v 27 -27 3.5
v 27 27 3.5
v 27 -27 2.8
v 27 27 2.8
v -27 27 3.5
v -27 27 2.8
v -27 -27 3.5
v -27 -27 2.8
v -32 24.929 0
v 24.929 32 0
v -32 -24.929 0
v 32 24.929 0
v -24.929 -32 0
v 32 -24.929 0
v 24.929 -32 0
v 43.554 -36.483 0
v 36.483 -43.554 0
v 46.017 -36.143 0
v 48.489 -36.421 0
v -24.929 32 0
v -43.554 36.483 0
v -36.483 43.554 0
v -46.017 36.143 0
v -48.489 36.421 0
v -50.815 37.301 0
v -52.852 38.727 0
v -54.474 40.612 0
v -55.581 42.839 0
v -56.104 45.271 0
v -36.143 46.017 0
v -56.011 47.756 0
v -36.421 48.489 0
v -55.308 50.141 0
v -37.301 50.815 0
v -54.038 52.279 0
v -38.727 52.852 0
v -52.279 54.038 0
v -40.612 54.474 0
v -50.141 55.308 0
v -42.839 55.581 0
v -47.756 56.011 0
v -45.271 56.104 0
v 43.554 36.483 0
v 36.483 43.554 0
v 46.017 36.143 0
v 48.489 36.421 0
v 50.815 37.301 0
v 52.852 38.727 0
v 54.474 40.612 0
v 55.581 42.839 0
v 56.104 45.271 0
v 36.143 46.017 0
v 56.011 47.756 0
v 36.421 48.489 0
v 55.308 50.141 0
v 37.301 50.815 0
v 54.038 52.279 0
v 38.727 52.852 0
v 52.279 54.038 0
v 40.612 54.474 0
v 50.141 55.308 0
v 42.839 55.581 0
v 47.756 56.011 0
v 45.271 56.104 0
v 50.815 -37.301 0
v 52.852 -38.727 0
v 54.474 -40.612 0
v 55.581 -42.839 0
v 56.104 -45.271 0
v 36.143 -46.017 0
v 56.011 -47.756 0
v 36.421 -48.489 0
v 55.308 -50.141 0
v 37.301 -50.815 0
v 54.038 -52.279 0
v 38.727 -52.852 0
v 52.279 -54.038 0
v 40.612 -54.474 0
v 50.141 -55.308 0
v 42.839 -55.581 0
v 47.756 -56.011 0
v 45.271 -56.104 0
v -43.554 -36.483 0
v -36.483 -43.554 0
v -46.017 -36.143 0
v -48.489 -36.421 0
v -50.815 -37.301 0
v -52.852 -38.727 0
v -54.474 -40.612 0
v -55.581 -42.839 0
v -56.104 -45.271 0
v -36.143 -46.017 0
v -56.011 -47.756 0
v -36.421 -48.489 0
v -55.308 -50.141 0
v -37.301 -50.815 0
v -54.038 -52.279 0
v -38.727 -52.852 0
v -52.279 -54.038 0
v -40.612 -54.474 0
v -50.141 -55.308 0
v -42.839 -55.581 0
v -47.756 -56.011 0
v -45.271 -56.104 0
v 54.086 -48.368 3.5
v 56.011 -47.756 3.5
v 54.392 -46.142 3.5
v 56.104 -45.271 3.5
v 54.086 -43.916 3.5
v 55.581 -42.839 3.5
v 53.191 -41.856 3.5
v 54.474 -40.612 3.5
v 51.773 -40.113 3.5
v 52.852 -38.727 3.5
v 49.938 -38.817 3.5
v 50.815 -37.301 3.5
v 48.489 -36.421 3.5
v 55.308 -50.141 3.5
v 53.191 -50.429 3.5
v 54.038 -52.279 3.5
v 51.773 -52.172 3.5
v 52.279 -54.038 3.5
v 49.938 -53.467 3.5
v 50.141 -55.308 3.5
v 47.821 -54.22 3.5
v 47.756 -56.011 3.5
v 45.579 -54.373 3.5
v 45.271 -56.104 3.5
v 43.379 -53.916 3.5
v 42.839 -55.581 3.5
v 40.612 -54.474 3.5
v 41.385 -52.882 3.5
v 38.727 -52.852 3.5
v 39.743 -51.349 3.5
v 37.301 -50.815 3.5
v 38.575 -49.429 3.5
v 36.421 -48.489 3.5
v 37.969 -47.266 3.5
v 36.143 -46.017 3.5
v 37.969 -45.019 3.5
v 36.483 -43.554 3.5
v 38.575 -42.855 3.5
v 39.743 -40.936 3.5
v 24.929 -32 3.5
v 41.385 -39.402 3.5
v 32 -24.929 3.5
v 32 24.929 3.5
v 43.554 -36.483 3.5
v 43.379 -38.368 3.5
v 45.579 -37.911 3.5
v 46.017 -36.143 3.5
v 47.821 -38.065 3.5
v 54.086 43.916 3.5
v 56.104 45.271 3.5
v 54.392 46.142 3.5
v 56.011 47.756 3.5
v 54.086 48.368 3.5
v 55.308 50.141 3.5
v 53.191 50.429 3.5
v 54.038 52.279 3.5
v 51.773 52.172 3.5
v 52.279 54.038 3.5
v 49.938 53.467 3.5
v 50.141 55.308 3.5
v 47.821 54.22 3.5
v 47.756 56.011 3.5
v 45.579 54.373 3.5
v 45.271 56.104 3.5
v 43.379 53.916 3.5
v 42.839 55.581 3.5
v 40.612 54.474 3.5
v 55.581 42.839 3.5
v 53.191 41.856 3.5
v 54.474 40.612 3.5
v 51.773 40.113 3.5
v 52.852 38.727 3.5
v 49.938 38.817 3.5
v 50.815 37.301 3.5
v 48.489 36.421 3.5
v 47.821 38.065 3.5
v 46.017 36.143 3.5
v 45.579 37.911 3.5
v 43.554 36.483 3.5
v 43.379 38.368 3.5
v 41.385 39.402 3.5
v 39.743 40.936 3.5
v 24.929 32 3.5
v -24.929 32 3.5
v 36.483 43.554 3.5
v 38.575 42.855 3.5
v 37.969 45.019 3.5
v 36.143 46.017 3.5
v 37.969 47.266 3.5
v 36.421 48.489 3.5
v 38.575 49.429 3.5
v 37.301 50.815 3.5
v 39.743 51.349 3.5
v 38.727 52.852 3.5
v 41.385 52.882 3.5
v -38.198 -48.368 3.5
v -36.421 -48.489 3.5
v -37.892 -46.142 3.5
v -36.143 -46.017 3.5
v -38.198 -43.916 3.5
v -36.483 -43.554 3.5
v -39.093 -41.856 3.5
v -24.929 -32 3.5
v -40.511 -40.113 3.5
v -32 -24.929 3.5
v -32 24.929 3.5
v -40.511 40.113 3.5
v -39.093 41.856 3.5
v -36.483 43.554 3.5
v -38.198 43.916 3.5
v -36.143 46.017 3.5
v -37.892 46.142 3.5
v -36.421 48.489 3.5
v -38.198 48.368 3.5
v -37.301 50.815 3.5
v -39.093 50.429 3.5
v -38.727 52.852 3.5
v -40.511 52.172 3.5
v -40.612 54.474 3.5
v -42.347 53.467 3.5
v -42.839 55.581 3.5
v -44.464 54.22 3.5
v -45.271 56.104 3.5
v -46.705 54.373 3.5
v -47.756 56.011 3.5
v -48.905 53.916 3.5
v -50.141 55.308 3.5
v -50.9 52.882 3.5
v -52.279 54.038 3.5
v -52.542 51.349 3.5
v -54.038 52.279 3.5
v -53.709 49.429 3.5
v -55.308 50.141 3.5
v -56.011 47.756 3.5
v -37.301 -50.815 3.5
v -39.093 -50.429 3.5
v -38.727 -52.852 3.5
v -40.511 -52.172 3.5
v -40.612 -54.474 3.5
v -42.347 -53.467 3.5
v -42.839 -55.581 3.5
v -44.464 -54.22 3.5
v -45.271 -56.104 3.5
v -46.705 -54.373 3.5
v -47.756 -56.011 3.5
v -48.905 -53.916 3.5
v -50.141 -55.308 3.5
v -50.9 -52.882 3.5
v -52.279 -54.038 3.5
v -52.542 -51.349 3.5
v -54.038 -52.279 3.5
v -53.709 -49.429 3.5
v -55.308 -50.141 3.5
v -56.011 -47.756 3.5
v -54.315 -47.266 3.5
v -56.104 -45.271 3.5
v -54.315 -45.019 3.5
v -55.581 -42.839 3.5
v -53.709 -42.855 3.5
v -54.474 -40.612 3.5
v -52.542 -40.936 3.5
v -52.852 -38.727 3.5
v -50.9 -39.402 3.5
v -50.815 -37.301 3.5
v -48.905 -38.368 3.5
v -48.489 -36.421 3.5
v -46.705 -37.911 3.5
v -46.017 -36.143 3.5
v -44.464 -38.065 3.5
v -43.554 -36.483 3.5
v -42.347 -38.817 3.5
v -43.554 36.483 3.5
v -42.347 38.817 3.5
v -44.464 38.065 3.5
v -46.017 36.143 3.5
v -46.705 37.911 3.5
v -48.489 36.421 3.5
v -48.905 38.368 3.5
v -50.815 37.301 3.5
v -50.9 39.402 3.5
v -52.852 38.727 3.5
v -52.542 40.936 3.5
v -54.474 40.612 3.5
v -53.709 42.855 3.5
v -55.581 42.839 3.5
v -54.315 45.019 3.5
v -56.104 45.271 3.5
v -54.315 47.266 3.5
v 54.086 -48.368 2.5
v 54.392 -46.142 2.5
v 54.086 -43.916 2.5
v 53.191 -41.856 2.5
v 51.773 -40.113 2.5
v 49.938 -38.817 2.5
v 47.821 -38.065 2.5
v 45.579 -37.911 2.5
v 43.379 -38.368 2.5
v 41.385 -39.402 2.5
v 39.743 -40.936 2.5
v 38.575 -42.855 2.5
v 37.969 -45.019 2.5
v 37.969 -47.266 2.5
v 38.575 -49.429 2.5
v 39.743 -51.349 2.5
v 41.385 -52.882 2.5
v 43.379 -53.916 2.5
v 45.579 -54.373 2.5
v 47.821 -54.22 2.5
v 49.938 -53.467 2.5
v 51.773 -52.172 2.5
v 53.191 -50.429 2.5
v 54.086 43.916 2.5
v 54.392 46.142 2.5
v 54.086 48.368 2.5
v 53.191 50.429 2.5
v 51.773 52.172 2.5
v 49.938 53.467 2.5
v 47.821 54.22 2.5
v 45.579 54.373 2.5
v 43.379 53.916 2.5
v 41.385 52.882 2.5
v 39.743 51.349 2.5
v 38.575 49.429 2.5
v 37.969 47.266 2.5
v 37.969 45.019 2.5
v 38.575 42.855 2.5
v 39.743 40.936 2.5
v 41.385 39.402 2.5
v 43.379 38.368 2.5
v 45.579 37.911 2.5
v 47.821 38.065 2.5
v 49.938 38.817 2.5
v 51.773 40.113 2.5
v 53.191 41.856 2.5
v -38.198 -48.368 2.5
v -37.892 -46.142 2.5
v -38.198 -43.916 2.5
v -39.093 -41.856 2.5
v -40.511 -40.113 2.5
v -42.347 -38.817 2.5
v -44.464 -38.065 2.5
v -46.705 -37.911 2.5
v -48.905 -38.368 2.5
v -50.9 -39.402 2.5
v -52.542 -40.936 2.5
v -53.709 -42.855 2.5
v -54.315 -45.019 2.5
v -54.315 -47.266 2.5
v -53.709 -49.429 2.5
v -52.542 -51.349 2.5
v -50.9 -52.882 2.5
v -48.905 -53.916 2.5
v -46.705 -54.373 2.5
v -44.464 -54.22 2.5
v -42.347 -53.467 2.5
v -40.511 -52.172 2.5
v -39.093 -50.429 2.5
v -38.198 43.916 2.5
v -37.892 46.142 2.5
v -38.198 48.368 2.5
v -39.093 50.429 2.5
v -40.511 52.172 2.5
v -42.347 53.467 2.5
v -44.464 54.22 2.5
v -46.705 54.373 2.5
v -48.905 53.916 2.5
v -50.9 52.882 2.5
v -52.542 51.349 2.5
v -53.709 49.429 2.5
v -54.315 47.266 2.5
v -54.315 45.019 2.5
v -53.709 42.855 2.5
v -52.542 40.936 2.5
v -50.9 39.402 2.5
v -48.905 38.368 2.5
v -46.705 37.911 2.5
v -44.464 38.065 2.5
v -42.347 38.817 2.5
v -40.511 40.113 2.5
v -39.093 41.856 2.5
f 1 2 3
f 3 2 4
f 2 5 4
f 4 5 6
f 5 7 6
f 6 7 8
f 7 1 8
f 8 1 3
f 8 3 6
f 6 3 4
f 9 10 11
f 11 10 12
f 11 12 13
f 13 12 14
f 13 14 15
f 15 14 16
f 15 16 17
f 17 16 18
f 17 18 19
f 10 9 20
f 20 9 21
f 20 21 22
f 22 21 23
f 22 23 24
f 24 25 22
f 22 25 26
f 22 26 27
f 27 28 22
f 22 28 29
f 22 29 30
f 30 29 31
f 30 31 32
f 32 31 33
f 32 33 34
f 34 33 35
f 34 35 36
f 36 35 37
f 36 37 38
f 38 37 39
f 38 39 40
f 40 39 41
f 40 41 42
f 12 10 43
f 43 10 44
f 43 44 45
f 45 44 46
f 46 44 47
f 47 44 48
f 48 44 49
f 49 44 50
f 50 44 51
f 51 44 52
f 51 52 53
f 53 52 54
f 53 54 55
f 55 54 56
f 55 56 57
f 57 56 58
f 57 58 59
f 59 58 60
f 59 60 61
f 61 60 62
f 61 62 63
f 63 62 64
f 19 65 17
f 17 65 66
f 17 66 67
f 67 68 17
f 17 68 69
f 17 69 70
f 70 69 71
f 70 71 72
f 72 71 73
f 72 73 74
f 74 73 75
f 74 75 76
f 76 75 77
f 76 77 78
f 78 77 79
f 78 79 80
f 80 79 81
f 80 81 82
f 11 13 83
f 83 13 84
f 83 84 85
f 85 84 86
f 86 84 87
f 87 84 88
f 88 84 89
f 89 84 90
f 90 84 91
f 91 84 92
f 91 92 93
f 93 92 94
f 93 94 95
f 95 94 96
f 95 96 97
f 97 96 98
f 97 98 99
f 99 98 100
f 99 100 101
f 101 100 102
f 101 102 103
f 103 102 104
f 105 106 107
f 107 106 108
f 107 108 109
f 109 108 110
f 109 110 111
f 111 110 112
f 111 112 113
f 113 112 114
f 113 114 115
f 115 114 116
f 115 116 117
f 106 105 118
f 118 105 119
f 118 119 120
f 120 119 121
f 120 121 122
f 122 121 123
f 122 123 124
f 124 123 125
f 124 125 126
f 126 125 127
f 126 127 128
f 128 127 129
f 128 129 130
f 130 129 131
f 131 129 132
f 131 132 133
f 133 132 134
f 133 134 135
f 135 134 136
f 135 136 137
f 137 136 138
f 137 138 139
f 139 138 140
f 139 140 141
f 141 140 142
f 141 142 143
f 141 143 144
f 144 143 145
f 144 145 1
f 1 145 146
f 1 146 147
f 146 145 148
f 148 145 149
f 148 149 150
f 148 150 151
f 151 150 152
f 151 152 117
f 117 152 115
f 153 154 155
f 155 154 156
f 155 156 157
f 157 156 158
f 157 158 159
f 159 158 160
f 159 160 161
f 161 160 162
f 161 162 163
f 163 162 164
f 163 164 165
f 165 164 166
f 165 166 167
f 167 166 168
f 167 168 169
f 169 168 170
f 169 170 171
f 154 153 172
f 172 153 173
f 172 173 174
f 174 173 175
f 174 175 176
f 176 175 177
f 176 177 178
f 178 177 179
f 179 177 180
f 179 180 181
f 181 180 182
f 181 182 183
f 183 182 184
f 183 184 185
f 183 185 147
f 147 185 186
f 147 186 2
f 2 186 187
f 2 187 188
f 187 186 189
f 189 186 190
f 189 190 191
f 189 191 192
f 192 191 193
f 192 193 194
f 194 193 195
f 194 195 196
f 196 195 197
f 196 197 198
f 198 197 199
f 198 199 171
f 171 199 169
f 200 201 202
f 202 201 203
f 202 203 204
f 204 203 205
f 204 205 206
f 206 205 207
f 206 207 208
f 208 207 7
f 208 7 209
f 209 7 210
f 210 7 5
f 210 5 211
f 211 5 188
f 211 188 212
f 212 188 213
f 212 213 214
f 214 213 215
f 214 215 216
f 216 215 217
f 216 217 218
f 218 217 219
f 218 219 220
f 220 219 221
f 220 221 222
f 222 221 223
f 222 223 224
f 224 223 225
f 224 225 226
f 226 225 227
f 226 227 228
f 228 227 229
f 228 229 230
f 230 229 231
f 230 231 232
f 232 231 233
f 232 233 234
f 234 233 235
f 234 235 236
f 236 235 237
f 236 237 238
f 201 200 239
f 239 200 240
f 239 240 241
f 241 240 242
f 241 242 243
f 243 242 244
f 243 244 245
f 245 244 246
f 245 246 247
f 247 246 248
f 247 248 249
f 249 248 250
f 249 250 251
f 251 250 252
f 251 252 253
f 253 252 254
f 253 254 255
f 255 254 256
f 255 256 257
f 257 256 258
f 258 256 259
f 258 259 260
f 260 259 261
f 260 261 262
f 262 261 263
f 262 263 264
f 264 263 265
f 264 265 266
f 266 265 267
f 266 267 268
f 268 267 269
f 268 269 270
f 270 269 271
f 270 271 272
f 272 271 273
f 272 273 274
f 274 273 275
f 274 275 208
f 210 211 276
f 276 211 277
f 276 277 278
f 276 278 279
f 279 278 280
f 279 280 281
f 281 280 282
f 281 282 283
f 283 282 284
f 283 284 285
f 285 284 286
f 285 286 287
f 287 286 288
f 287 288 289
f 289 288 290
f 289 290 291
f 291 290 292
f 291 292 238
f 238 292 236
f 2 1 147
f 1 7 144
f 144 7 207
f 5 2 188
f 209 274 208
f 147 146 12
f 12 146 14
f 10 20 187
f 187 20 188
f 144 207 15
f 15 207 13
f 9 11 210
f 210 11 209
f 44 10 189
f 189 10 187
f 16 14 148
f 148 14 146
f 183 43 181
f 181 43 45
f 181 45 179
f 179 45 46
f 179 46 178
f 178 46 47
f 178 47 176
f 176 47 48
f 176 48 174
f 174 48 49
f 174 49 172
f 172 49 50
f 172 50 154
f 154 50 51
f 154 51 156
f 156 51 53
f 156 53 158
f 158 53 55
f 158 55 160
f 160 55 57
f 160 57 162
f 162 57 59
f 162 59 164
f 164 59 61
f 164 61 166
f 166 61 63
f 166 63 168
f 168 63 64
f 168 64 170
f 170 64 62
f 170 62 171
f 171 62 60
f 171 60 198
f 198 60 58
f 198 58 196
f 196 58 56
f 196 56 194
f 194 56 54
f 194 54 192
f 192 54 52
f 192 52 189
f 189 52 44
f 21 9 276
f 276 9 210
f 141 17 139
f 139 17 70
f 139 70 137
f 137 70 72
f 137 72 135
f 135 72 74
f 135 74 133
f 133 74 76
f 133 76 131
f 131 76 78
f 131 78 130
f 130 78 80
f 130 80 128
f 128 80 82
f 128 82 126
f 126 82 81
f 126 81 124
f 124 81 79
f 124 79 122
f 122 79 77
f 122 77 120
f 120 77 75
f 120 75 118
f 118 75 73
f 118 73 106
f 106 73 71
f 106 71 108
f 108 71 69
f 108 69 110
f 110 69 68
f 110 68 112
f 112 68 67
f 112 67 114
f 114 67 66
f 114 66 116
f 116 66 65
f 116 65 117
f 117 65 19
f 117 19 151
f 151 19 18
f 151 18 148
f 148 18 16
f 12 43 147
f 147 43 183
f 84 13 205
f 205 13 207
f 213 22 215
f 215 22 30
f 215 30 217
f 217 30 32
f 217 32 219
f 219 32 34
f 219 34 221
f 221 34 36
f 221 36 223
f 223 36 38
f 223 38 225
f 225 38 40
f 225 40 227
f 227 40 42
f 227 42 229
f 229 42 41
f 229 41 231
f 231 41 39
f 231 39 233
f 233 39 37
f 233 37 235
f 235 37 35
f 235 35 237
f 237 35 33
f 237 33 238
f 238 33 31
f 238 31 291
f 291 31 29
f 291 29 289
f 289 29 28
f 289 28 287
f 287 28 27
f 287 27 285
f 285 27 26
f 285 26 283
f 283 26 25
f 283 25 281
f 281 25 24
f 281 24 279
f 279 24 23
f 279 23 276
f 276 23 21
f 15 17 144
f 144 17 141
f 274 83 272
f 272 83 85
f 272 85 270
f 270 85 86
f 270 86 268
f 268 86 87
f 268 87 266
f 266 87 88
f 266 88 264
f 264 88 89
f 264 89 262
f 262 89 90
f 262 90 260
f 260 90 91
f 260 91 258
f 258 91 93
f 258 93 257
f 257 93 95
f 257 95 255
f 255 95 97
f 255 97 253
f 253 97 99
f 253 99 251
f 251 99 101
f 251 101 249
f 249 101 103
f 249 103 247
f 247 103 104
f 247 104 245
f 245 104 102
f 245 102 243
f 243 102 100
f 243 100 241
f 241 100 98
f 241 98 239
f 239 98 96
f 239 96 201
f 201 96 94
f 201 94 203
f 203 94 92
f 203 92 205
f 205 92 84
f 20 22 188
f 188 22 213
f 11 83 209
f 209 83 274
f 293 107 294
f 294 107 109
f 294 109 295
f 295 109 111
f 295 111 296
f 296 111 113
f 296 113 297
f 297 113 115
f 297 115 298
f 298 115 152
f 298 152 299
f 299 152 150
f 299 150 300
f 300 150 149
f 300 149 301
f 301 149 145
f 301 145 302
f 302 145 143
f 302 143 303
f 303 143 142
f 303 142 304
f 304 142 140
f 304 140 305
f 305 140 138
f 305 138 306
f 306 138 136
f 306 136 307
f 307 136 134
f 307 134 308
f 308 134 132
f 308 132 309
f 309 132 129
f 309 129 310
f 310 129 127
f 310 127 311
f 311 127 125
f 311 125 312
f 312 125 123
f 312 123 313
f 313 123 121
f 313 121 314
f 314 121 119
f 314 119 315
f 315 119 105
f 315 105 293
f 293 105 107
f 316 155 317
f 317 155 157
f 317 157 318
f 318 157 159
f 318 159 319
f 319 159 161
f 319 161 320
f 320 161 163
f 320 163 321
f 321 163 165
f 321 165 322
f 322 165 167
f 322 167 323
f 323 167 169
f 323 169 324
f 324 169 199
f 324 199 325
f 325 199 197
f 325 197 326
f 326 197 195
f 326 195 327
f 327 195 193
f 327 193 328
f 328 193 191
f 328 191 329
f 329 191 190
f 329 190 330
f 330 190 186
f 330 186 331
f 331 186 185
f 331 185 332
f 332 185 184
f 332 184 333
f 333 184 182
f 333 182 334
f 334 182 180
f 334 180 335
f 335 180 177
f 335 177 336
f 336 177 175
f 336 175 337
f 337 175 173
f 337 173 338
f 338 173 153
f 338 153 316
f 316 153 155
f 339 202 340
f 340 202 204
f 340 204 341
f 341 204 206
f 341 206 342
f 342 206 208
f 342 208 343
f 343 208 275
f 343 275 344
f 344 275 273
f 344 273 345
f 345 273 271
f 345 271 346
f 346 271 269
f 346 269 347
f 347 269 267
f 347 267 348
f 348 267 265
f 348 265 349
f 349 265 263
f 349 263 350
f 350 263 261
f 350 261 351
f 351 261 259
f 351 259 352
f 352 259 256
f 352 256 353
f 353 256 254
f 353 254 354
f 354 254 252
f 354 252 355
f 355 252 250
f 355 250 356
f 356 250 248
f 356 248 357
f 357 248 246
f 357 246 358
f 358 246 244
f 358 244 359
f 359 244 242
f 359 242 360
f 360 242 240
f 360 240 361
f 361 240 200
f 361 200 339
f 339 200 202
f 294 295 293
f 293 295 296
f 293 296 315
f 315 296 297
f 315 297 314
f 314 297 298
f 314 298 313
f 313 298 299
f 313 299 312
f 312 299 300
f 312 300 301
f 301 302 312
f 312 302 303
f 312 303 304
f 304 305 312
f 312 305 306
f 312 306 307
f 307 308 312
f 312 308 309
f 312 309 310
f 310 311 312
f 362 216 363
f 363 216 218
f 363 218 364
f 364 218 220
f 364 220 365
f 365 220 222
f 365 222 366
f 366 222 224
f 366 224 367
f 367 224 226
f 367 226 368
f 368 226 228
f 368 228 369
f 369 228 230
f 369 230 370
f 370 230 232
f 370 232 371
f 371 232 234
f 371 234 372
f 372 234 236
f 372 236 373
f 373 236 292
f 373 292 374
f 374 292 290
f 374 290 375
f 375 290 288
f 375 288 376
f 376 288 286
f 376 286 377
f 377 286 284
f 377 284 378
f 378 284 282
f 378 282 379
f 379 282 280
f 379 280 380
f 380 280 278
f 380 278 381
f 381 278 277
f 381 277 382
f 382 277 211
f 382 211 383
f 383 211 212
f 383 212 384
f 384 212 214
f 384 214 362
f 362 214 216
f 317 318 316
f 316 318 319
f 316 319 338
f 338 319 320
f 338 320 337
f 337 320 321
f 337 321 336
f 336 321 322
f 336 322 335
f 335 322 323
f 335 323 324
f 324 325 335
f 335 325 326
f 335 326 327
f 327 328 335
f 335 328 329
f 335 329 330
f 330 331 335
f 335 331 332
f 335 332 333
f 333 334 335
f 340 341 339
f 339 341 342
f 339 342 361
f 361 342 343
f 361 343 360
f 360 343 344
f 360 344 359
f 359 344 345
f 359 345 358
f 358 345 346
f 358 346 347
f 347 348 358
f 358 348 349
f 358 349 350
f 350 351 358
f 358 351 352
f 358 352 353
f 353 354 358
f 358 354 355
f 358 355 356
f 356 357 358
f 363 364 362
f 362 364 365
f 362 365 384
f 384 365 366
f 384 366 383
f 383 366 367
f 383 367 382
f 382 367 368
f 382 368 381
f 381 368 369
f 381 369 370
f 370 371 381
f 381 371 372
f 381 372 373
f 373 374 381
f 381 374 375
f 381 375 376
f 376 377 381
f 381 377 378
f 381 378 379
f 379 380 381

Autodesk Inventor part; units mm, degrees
ref_plane "YZ Plane" through (0, 0, 0) normal (1, 0, 0) x (0, 1, 0)
ref_plane "XZ Plane" through (0, 0, 0) normal (0, 1, 0) x (-1, 0, 0)
ref_plane "XY Plane" through (0, 0, 0) normal (0, 0, 1) x (1, 0, 0)
sketch "Sketch1" plane through (0, 0, 0) normal (0, 0, 1) x (1, 0, 0)
  line L0 (-32, 32) -> (32, 32)
  line L1 (32, 32) -> (32, -32)
  line L2 (32, -32) -> (-32, -32)
  line L3 (-32, -32) -> (-32, 32)
  line L4 (-32, 32) -> (32, -32) construction
  line L5 (32, 32) -> (-32, -32) construction
  point P0 (0, 0)
  dimension "d0" = 64
  dimension "d1" = 64
extrude "Extrusion1" add sketch "Sketch1" along normal blind 3.5
sketch "Sketch2" plane through (0, 0, 3.5) normal (0, 0, 1) x (1, 0, 0)
  line L0 (-27, 27) -> (27, 27)
  line L1 (27, 27) -> (27, -27)
  line L2 (27, -27) -> (-27, -27)
  line L3 (-27, -27) -> (-27, 27)
  line L4 (-27, 27) -> (27, -27) construction
  line L5 (27, 27) -> (-27, -27) construction
  point P0 (0, 0)
  dimension "d4" = 54
  dimension "d5" = 54
extrude "Extrusion2" cut sketch "Sketch2" against normal blind 0.7
sketch "Sketch3" plane through (0, 0, 0) normal (0, 0, 1) x (1, 0, 0)
  line L0 (-32, 32) -> (-32, -32) projected
  line L1 (32, -32) -> (32, 32) projected
  line L2 (-32, -32) -> (32, -32) projected
  line L3 (32, -32) -> (32, 32) projected
  line L4 (32, 32) -> (-32, 32) projected
  line L5 (-32, 32) -> (-46.1421, 46.1421)
  circle A0 centre (-46.1421, 46.1421) radius 10
  line L6 (-36.4829, 43.5539) -> (-24.9289, 32)
  line L7 (32, 32) -> (-32, 32) projected
  line L8 (-43.5539, 36.4829) -> (-32, 24.9289)
  line L9 (32, 32) -> (46.1421, 46.1421)
  circle A1 centre (46.1421, 46.1421) radius 10
  line L10 (43.5539, 36.4829) -> (32, 24.9289)
  line L11 (36.4829, 43.5539) -> (24.9289, 32)
  line L12 (-32, -32) -> (-46.1421, -46.1421)
  circle A2 centre (-46.1421, -46.1421) radius 10
  line L13 (-36.4829, -43.5539) -> (-23.7494, -30.8205)
  line L14 (-43.5539, -36.4829) -> (-32, -24.9289)
  line L15 (32, -32) -> (46.1421, -46.1421)
  circle A3 centre (46.1421, -46.1421) radius 10
  line L16 (43.5539, -36.4829) -> (32, -24.9289)
  line L17 (36.4829, -43.5539) -> (24.9289, -32)
  point P0 (0, 0)
  point P1 (-30.7059, 37.777)
  point P2 (-24.9289, -32)
  dimension "d28" = 135
  dimension "d29" = 20
  dimension "d30" = 20
  dimension "d31" = 5
  dimension "d32" = 5
  dimension "d33" = 135
  dimension "d34" = 20
  dimension "d35" = 20
  dimension "d36" = 5
  dimension "d37" = 5
  dimension "d38" = 20
  dimension "d39" = 135
  dimension "d40" = 20
  dimension "d41" = 5
  dimension "d42" = 5
  dimension "d43" = 20
  dimension "d44" = 135
  dimension "d45" = 20
  dimension "d46" = 5
  dimension "d47" = 5
extrude "Extrusion3" add sketch "Sketch3" along normal blind 3.5 contours L5 A0 L6 L4 | L0 L8 A0 L5 | A0 | L0 L12 A2 L14 | L11 A1 L9 L4 | L2 L13 A2 L12 | A2 | L9 A1 L10 L1 | A1 | L2 L15 A3 L17 | L16 A3 L15 L1 | A3
sketch "Sketch4" plane through (0, 0, 3.5) normal (0, 0, 1) x (1, 0, 0)
  arc A0 (-36.4829, 43.5539) -> (-43.5539, 36.4829) centre (-46.1421, 46.1421) ccw projected
  arc A1 (43.5539, 36.4829) -> (36.4829, 43.5539) centre (46.1421, 46.1421) ccw projected
  arc A2 (36.4829, -43.5539) -> (43.5539, -36.4829) centre (46.1421, -46.1421) ccw projected
  arc A3 (-43.5539, -36.4829) -> (-36.4829, -43.5539) centre (-46.1421, -46.1421) ccw projected
  circle A4 centre (-46.1421, 46.1421) radius 8.25
  circle A5 centre (46.1421, 46.1421) radius 8.25
  circle A6 centre (46.1421, -46.1421) radius 8.25
  circle A7 centre (-46.1421, -46.1421) radius 8.25
  point P0 (0, 0)
  dimension "d50" = 16.5
  dimension "d51" = 16.5
  dimension "d52" = 16.5
  dimension "d53" = 16.5
extrude "Extrusion4" cut sketch "Sketch4" against normal blind 1
properties part number "holder"
